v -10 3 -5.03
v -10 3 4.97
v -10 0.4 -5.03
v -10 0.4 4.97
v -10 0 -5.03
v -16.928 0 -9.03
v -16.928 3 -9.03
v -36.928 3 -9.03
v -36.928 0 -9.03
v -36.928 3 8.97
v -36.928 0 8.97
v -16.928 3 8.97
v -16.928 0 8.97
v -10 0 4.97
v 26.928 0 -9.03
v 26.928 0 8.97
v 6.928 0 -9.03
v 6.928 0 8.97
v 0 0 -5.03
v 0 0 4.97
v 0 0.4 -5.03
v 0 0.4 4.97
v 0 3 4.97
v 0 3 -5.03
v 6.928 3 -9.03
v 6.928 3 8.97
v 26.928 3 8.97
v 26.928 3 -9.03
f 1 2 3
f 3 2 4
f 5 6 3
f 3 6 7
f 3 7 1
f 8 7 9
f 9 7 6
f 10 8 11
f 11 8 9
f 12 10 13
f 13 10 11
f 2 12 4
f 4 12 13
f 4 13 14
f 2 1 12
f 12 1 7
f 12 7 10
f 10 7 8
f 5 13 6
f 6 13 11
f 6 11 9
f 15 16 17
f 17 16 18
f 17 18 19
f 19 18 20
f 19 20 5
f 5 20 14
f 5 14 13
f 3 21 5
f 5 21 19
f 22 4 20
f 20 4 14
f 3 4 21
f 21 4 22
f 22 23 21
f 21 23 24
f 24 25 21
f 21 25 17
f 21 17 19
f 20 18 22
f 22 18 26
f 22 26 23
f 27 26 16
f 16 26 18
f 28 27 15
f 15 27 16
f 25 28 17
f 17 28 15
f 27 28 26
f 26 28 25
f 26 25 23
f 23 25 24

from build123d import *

# Parameters (mm, degrees)
BOSS_EXTRUDE1_DEPTH   = 3
BOSS_EXTRUDE1_2_DEPTH = 3
SKETCH1_3_W           = 10
SKETCH1_3_H           = 10
BOSS_EXTRUDE2_DEPTH   = 0.4


with BuildPart() as part:
    # Sketch1 → Boss-Extrude1 (new body)
    with BuildSketch(Plane(origin=(0, 0, 0), x_dir=(1, 0, 0), z_dir=(0, 1, 0))):
        Polygon((6.92820323, 9.029673591), (0, 5.029673591), (0, -4.970326409), (6.92820323, -8.970326409), (26.92820323, -8.970326409), (26.92820323, 9.029673591), align=None)
    extrude(amount=BOSS_EXTRUDE1_DEPTH)



with BuildPart() as body_2:
    # Sketch1 → Boss-Extrude1 2 (new body)
    with BuildSketch(Plane(origin=(0, 0, 0), x_dir=(1, 0, 0), z_dir=(0, 1, 0))):
        Polygon((-10, -4.970326409), (-10, 5.029673591), (-16.92820323, 9.029673591), (-36.92820323, 9.029673591), (-36.92820323, -8.970326409), (-16.92820323, -8.970326409), align=None)
    extrude(amount=BOSS_EXTRUDE1_2_DEPTH)


with BuildPart() as part_1:
    add(part.part)

    add(body_2.part)  # Boss-Extrude2 merges body 2
    # Sketch1<3> → Boss-Extrude2 (add)
    with BuildSketch(Plane(origin=(0, 0, 0), x_dir=(1, 0, 0), z_dir=(0, 1, 0))):
        with Locations((-5, 0.029673591)):
            Rectangle(SKETCH1_3_W, SKETCH1_3_H)
    extrude(amount=BOSS_EXTRUDE2_DEPTH)


solid = part_1.part
